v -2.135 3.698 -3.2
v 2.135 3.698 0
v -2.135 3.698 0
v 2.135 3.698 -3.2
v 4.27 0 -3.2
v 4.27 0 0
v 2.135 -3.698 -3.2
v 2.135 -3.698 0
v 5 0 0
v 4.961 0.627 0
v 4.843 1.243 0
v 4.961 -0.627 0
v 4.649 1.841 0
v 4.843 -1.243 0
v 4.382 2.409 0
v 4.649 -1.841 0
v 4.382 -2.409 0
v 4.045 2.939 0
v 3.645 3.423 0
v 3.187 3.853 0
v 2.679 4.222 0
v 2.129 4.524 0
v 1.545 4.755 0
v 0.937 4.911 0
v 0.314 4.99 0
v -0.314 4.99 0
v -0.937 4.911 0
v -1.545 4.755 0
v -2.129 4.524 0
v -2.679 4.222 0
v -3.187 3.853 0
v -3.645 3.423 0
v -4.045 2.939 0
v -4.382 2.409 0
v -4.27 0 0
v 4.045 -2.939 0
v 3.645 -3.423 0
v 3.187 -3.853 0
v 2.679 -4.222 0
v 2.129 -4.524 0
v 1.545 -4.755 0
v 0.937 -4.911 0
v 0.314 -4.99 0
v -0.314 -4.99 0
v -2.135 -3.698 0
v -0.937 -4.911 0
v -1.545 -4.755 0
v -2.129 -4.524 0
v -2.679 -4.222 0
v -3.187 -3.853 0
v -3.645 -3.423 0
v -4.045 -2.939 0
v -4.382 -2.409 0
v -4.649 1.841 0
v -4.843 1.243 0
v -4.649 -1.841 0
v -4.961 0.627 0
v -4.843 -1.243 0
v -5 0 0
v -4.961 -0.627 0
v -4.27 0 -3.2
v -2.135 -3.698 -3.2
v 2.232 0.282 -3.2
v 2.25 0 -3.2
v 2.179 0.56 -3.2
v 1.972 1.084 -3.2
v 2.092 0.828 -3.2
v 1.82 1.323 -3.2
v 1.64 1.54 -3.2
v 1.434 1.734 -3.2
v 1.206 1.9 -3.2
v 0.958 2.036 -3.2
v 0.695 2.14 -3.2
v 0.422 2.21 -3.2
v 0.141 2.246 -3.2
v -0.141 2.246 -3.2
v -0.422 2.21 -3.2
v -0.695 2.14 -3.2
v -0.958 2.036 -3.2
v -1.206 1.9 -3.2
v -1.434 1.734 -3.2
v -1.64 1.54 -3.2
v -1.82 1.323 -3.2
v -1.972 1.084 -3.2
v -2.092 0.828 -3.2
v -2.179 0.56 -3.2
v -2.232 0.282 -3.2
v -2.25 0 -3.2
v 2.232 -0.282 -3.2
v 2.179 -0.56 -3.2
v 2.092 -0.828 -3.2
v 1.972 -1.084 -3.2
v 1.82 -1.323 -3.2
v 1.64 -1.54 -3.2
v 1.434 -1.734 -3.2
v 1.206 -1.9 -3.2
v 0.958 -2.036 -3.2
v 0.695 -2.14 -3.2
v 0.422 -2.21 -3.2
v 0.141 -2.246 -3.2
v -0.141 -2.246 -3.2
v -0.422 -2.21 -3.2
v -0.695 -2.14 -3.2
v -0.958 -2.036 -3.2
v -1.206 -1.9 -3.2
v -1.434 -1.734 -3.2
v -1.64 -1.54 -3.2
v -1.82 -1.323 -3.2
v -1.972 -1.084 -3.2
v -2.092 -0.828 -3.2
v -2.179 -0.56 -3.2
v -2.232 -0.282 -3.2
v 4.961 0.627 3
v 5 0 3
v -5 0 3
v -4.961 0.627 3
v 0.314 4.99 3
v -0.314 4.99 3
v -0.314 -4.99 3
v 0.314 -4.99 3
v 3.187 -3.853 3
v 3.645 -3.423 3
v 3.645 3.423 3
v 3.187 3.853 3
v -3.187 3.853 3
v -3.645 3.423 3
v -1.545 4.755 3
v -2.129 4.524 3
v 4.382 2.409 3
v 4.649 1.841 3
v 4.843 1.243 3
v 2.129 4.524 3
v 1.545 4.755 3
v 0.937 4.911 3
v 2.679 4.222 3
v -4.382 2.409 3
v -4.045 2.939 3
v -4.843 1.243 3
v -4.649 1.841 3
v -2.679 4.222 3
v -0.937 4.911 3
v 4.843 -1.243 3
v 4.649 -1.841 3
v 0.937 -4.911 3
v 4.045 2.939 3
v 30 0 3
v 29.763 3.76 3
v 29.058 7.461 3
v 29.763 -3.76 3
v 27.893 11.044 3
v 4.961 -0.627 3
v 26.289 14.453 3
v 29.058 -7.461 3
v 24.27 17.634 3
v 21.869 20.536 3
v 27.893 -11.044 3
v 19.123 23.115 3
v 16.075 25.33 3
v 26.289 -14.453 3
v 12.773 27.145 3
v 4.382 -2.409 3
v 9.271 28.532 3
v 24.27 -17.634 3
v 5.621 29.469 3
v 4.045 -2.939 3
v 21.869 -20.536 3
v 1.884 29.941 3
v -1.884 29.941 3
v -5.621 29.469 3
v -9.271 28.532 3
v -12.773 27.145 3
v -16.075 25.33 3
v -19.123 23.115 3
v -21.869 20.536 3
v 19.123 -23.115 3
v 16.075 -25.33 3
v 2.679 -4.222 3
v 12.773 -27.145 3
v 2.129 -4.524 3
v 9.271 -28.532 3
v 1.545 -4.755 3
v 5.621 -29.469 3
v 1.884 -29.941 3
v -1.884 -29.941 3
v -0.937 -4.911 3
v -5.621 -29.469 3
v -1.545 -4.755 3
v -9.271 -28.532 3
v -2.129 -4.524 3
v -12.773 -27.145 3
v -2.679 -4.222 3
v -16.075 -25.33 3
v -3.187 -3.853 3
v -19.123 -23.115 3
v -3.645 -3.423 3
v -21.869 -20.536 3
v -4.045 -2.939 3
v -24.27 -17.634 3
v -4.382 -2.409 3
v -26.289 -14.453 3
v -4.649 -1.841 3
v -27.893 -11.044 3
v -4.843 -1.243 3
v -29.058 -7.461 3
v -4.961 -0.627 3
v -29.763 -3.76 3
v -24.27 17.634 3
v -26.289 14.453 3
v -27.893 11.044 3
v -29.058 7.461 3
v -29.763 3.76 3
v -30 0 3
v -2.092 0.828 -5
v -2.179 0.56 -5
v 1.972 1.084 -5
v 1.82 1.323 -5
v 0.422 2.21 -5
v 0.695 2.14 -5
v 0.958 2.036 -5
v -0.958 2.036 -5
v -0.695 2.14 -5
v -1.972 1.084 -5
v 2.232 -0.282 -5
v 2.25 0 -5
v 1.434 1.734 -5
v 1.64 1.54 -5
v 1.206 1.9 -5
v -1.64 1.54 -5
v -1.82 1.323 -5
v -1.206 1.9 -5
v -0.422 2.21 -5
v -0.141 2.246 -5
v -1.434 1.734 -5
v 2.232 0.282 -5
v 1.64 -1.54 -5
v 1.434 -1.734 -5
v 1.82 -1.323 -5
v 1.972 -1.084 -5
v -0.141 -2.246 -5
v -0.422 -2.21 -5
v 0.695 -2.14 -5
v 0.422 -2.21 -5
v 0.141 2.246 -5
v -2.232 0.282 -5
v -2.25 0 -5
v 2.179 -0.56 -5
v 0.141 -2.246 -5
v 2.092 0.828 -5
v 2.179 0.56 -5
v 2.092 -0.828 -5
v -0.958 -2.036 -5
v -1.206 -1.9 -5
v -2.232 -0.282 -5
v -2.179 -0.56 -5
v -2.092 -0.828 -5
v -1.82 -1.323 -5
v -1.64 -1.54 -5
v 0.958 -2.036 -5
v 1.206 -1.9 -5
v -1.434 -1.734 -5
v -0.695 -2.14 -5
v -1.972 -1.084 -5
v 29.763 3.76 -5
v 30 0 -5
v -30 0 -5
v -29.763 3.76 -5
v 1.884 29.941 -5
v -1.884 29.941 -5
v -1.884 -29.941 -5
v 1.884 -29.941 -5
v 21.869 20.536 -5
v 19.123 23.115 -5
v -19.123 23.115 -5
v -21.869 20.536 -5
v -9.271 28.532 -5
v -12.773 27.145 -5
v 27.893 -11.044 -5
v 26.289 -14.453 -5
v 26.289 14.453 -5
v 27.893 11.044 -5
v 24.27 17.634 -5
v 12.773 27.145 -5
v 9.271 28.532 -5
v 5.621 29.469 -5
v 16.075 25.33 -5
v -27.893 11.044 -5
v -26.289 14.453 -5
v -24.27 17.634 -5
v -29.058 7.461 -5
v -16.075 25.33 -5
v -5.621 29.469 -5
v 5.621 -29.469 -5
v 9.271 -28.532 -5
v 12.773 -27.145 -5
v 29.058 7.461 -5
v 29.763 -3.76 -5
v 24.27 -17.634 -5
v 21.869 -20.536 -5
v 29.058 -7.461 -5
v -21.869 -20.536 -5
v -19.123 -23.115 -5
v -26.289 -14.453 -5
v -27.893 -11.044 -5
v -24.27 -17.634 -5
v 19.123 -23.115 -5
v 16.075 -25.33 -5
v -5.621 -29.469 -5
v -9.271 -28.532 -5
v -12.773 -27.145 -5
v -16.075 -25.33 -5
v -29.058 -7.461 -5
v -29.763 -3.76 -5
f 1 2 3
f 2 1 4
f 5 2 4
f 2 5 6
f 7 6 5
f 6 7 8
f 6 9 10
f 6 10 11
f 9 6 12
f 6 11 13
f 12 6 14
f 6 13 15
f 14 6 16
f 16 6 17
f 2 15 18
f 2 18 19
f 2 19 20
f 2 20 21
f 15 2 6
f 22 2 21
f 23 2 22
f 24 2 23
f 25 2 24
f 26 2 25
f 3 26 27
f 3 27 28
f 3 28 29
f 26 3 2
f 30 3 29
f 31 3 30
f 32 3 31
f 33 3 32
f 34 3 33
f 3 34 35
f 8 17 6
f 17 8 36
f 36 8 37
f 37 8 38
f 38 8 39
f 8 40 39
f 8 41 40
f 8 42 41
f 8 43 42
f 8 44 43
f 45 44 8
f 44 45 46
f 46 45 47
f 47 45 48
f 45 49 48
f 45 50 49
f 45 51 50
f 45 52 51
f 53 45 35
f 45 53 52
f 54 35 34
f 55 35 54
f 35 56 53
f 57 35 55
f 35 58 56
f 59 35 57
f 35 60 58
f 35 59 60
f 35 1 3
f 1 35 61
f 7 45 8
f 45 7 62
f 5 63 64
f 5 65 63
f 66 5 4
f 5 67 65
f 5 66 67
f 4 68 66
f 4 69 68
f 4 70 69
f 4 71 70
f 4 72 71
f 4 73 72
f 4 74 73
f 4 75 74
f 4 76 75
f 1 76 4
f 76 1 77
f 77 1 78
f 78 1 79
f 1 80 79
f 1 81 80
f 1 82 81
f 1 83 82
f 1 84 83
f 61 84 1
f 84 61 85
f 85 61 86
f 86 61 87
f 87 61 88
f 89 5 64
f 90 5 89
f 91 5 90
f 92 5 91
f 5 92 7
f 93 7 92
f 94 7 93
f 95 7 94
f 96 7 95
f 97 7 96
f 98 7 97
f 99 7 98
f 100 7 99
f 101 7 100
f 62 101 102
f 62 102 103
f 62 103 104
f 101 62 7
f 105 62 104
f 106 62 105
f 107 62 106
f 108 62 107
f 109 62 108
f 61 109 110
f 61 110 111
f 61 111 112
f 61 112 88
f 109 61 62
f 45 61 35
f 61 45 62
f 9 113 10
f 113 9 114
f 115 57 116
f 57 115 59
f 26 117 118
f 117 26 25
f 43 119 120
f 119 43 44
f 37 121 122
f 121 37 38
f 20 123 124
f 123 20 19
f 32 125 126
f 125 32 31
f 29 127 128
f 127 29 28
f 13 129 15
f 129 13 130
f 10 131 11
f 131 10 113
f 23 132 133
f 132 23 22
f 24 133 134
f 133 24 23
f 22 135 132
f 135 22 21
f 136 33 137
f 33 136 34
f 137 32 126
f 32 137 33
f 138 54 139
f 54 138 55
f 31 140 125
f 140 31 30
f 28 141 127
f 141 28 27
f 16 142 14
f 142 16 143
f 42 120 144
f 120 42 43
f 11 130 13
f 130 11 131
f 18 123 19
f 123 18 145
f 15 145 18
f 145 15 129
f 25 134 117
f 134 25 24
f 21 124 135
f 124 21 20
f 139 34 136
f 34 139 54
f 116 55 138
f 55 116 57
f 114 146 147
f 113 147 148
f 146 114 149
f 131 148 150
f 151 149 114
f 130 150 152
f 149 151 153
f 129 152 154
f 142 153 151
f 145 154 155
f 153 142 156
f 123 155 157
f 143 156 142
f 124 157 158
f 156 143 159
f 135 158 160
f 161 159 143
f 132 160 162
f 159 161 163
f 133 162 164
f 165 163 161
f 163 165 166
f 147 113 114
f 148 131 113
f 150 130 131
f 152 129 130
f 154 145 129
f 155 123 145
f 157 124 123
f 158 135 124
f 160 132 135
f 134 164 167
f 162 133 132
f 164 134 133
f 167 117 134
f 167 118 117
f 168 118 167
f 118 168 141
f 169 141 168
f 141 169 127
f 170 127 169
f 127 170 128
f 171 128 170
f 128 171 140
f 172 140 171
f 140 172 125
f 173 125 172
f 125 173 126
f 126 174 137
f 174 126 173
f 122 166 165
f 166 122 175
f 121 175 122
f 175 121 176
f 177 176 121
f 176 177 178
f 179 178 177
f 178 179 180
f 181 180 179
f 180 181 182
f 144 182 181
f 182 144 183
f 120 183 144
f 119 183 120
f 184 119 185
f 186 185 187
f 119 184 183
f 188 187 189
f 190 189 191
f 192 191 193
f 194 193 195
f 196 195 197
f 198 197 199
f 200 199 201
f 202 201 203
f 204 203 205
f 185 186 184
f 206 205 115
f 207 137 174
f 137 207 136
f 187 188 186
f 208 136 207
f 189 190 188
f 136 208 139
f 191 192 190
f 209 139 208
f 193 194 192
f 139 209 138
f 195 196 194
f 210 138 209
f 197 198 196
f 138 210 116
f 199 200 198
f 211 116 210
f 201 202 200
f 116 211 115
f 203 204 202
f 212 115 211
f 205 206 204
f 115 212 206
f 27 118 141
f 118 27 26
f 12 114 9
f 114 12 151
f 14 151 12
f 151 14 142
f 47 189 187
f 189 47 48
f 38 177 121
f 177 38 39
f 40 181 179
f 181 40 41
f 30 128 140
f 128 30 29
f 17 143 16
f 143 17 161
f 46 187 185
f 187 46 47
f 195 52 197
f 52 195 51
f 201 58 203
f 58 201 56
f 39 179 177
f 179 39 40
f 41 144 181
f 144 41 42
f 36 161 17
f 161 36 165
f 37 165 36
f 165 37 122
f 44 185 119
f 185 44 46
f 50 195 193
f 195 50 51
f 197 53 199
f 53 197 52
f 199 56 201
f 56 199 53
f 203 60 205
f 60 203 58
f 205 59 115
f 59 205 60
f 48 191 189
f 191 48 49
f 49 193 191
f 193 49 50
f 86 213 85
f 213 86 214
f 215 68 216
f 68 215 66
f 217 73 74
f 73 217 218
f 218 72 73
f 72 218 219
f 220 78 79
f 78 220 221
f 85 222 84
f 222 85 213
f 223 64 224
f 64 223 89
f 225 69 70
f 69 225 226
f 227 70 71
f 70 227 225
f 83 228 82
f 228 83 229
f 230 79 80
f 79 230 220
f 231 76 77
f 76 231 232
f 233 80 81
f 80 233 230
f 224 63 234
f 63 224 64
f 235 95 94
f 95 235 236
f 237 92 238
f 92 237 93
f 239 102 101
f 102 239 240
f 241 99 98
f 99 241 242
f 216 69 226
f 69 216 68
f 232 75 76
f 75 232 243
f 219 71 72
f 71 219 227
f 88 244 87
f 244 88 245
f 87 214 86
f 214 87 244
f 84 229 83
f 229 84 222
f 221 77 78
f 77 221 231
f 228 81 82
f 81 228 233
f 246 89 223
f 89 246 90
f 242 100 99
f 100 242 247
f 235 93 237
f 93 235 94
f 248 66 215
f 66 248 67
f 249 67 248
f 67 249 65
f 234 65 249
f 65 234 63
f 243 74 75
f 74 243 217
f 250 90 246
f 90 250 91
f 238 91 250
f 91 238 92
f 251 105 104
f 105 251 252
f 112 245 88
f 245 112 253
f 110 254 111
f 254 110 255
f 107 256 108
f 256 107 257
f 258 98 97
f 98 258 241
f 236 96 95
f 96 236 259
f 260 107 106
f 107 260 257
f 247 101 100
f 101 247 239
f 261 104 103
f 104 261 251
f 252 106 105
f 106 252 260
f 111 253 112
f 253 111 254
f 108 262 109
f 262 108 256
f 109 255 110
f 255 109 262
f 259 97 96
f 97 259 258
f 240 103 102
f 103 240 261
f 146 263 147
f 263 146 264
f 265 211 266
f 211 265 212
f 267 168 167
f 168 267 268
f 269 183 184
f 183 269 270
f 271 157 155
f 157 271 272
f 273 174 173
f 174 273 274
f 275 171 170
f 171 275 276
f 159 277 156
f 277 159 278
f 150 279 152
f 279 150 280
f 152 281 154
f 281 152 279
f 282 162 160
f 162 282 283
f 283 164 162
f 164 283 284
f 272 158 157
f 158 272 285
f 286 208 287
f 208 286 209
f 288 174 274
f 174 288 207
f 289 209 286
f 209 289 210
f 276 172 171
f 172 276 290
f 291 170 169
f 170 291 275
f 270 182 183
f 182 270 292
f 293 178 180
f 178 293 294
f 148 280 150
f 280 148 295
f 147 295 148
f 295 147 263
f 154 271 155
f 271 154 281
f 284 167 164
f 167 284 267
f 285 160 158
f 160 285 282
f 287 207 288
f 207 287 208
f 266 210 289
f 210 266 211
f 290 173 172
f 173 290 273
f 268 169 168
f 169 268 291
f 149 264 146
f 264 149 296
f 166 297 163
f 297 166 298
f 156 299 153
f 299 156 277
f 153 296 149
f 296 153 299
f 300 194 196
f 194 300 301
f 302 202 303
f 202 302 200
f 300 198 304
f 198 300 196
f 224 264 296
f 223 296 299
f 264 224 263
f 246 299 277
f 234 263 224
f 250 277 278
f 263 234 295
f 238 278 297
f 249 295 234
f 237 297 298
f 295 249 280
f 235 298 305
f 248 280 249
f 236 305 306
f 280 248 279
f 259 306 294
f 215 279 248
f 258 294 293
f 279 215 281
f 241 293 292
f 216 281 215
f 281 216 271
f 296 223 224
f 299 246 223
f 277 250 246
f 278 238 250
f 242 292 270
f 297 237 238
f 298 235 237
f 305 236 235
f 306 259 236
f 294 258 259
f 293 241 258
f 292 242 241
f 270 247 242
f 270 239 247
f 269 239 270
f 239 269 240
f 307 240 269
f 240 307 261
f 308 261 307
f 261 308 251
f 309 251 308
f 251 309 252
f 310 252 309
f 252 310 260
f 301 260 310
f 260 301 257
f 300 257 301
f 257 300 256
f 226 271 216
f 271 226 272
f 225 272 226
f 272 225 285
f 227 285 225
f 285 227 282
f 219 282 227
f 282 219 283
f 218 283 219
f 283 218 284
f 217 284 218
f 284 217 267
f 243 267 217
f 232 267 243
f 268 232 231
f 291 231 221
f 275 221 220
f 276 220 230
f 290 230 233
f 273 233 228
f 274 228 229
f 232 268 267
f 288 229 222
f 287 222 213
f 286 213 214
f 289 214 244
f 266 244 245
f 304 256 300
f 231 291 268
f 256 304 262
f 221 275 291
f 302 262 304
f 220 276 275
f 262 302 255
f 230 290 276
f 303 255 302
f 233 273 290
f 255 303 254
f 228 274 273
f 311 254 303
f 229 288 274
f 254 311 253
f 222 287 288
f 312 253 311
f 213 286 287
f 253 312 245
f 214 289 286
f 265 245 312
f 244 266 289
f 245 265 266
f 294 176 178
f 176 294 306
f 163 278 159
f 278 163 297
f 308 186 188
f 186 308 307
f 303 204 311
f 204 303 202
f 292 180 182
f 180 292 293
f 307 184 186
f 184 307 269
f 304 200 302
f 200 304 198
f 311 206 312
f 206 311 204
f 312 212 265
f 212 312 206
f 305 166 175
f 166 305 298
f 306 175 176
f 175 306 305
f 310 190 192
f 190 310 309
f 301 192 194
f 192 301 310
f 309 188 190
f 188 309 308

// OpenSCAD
$fn = 50;

difference() {
	union() {
		translate(v = [0, 0, -5.0]) {
			cylinder(h = 8.0, r = 30.0);
		}
	}
	union() {
		translate(v = [0, 0, 0]) {
			rotate(a = [0, 0, 0]) {
				difference() {
					union() {
						translate(v = [0, 0, -3.2]) {
							linear_extrude(height = 3.2) {
								polygon(points = [[4.2698, 0.0], [2.1349000000000005, 3.697755269078796], [-2.134899999999999, 3.6977552690787965], [-4.2698, 5.228996902999369e-16], [-2.134900000000002, -3.6977552690787956], [2.1348999999999974, -3.697755269078798]]);
							}
						}
					}
					union();
				}
			}
		}
		#cylinder(h = 3, r = 5.0);
		#translate(v = [0, 0, -100.0]) {
			cylinder(h = 200, r = 2.25);
		}
	}
}
